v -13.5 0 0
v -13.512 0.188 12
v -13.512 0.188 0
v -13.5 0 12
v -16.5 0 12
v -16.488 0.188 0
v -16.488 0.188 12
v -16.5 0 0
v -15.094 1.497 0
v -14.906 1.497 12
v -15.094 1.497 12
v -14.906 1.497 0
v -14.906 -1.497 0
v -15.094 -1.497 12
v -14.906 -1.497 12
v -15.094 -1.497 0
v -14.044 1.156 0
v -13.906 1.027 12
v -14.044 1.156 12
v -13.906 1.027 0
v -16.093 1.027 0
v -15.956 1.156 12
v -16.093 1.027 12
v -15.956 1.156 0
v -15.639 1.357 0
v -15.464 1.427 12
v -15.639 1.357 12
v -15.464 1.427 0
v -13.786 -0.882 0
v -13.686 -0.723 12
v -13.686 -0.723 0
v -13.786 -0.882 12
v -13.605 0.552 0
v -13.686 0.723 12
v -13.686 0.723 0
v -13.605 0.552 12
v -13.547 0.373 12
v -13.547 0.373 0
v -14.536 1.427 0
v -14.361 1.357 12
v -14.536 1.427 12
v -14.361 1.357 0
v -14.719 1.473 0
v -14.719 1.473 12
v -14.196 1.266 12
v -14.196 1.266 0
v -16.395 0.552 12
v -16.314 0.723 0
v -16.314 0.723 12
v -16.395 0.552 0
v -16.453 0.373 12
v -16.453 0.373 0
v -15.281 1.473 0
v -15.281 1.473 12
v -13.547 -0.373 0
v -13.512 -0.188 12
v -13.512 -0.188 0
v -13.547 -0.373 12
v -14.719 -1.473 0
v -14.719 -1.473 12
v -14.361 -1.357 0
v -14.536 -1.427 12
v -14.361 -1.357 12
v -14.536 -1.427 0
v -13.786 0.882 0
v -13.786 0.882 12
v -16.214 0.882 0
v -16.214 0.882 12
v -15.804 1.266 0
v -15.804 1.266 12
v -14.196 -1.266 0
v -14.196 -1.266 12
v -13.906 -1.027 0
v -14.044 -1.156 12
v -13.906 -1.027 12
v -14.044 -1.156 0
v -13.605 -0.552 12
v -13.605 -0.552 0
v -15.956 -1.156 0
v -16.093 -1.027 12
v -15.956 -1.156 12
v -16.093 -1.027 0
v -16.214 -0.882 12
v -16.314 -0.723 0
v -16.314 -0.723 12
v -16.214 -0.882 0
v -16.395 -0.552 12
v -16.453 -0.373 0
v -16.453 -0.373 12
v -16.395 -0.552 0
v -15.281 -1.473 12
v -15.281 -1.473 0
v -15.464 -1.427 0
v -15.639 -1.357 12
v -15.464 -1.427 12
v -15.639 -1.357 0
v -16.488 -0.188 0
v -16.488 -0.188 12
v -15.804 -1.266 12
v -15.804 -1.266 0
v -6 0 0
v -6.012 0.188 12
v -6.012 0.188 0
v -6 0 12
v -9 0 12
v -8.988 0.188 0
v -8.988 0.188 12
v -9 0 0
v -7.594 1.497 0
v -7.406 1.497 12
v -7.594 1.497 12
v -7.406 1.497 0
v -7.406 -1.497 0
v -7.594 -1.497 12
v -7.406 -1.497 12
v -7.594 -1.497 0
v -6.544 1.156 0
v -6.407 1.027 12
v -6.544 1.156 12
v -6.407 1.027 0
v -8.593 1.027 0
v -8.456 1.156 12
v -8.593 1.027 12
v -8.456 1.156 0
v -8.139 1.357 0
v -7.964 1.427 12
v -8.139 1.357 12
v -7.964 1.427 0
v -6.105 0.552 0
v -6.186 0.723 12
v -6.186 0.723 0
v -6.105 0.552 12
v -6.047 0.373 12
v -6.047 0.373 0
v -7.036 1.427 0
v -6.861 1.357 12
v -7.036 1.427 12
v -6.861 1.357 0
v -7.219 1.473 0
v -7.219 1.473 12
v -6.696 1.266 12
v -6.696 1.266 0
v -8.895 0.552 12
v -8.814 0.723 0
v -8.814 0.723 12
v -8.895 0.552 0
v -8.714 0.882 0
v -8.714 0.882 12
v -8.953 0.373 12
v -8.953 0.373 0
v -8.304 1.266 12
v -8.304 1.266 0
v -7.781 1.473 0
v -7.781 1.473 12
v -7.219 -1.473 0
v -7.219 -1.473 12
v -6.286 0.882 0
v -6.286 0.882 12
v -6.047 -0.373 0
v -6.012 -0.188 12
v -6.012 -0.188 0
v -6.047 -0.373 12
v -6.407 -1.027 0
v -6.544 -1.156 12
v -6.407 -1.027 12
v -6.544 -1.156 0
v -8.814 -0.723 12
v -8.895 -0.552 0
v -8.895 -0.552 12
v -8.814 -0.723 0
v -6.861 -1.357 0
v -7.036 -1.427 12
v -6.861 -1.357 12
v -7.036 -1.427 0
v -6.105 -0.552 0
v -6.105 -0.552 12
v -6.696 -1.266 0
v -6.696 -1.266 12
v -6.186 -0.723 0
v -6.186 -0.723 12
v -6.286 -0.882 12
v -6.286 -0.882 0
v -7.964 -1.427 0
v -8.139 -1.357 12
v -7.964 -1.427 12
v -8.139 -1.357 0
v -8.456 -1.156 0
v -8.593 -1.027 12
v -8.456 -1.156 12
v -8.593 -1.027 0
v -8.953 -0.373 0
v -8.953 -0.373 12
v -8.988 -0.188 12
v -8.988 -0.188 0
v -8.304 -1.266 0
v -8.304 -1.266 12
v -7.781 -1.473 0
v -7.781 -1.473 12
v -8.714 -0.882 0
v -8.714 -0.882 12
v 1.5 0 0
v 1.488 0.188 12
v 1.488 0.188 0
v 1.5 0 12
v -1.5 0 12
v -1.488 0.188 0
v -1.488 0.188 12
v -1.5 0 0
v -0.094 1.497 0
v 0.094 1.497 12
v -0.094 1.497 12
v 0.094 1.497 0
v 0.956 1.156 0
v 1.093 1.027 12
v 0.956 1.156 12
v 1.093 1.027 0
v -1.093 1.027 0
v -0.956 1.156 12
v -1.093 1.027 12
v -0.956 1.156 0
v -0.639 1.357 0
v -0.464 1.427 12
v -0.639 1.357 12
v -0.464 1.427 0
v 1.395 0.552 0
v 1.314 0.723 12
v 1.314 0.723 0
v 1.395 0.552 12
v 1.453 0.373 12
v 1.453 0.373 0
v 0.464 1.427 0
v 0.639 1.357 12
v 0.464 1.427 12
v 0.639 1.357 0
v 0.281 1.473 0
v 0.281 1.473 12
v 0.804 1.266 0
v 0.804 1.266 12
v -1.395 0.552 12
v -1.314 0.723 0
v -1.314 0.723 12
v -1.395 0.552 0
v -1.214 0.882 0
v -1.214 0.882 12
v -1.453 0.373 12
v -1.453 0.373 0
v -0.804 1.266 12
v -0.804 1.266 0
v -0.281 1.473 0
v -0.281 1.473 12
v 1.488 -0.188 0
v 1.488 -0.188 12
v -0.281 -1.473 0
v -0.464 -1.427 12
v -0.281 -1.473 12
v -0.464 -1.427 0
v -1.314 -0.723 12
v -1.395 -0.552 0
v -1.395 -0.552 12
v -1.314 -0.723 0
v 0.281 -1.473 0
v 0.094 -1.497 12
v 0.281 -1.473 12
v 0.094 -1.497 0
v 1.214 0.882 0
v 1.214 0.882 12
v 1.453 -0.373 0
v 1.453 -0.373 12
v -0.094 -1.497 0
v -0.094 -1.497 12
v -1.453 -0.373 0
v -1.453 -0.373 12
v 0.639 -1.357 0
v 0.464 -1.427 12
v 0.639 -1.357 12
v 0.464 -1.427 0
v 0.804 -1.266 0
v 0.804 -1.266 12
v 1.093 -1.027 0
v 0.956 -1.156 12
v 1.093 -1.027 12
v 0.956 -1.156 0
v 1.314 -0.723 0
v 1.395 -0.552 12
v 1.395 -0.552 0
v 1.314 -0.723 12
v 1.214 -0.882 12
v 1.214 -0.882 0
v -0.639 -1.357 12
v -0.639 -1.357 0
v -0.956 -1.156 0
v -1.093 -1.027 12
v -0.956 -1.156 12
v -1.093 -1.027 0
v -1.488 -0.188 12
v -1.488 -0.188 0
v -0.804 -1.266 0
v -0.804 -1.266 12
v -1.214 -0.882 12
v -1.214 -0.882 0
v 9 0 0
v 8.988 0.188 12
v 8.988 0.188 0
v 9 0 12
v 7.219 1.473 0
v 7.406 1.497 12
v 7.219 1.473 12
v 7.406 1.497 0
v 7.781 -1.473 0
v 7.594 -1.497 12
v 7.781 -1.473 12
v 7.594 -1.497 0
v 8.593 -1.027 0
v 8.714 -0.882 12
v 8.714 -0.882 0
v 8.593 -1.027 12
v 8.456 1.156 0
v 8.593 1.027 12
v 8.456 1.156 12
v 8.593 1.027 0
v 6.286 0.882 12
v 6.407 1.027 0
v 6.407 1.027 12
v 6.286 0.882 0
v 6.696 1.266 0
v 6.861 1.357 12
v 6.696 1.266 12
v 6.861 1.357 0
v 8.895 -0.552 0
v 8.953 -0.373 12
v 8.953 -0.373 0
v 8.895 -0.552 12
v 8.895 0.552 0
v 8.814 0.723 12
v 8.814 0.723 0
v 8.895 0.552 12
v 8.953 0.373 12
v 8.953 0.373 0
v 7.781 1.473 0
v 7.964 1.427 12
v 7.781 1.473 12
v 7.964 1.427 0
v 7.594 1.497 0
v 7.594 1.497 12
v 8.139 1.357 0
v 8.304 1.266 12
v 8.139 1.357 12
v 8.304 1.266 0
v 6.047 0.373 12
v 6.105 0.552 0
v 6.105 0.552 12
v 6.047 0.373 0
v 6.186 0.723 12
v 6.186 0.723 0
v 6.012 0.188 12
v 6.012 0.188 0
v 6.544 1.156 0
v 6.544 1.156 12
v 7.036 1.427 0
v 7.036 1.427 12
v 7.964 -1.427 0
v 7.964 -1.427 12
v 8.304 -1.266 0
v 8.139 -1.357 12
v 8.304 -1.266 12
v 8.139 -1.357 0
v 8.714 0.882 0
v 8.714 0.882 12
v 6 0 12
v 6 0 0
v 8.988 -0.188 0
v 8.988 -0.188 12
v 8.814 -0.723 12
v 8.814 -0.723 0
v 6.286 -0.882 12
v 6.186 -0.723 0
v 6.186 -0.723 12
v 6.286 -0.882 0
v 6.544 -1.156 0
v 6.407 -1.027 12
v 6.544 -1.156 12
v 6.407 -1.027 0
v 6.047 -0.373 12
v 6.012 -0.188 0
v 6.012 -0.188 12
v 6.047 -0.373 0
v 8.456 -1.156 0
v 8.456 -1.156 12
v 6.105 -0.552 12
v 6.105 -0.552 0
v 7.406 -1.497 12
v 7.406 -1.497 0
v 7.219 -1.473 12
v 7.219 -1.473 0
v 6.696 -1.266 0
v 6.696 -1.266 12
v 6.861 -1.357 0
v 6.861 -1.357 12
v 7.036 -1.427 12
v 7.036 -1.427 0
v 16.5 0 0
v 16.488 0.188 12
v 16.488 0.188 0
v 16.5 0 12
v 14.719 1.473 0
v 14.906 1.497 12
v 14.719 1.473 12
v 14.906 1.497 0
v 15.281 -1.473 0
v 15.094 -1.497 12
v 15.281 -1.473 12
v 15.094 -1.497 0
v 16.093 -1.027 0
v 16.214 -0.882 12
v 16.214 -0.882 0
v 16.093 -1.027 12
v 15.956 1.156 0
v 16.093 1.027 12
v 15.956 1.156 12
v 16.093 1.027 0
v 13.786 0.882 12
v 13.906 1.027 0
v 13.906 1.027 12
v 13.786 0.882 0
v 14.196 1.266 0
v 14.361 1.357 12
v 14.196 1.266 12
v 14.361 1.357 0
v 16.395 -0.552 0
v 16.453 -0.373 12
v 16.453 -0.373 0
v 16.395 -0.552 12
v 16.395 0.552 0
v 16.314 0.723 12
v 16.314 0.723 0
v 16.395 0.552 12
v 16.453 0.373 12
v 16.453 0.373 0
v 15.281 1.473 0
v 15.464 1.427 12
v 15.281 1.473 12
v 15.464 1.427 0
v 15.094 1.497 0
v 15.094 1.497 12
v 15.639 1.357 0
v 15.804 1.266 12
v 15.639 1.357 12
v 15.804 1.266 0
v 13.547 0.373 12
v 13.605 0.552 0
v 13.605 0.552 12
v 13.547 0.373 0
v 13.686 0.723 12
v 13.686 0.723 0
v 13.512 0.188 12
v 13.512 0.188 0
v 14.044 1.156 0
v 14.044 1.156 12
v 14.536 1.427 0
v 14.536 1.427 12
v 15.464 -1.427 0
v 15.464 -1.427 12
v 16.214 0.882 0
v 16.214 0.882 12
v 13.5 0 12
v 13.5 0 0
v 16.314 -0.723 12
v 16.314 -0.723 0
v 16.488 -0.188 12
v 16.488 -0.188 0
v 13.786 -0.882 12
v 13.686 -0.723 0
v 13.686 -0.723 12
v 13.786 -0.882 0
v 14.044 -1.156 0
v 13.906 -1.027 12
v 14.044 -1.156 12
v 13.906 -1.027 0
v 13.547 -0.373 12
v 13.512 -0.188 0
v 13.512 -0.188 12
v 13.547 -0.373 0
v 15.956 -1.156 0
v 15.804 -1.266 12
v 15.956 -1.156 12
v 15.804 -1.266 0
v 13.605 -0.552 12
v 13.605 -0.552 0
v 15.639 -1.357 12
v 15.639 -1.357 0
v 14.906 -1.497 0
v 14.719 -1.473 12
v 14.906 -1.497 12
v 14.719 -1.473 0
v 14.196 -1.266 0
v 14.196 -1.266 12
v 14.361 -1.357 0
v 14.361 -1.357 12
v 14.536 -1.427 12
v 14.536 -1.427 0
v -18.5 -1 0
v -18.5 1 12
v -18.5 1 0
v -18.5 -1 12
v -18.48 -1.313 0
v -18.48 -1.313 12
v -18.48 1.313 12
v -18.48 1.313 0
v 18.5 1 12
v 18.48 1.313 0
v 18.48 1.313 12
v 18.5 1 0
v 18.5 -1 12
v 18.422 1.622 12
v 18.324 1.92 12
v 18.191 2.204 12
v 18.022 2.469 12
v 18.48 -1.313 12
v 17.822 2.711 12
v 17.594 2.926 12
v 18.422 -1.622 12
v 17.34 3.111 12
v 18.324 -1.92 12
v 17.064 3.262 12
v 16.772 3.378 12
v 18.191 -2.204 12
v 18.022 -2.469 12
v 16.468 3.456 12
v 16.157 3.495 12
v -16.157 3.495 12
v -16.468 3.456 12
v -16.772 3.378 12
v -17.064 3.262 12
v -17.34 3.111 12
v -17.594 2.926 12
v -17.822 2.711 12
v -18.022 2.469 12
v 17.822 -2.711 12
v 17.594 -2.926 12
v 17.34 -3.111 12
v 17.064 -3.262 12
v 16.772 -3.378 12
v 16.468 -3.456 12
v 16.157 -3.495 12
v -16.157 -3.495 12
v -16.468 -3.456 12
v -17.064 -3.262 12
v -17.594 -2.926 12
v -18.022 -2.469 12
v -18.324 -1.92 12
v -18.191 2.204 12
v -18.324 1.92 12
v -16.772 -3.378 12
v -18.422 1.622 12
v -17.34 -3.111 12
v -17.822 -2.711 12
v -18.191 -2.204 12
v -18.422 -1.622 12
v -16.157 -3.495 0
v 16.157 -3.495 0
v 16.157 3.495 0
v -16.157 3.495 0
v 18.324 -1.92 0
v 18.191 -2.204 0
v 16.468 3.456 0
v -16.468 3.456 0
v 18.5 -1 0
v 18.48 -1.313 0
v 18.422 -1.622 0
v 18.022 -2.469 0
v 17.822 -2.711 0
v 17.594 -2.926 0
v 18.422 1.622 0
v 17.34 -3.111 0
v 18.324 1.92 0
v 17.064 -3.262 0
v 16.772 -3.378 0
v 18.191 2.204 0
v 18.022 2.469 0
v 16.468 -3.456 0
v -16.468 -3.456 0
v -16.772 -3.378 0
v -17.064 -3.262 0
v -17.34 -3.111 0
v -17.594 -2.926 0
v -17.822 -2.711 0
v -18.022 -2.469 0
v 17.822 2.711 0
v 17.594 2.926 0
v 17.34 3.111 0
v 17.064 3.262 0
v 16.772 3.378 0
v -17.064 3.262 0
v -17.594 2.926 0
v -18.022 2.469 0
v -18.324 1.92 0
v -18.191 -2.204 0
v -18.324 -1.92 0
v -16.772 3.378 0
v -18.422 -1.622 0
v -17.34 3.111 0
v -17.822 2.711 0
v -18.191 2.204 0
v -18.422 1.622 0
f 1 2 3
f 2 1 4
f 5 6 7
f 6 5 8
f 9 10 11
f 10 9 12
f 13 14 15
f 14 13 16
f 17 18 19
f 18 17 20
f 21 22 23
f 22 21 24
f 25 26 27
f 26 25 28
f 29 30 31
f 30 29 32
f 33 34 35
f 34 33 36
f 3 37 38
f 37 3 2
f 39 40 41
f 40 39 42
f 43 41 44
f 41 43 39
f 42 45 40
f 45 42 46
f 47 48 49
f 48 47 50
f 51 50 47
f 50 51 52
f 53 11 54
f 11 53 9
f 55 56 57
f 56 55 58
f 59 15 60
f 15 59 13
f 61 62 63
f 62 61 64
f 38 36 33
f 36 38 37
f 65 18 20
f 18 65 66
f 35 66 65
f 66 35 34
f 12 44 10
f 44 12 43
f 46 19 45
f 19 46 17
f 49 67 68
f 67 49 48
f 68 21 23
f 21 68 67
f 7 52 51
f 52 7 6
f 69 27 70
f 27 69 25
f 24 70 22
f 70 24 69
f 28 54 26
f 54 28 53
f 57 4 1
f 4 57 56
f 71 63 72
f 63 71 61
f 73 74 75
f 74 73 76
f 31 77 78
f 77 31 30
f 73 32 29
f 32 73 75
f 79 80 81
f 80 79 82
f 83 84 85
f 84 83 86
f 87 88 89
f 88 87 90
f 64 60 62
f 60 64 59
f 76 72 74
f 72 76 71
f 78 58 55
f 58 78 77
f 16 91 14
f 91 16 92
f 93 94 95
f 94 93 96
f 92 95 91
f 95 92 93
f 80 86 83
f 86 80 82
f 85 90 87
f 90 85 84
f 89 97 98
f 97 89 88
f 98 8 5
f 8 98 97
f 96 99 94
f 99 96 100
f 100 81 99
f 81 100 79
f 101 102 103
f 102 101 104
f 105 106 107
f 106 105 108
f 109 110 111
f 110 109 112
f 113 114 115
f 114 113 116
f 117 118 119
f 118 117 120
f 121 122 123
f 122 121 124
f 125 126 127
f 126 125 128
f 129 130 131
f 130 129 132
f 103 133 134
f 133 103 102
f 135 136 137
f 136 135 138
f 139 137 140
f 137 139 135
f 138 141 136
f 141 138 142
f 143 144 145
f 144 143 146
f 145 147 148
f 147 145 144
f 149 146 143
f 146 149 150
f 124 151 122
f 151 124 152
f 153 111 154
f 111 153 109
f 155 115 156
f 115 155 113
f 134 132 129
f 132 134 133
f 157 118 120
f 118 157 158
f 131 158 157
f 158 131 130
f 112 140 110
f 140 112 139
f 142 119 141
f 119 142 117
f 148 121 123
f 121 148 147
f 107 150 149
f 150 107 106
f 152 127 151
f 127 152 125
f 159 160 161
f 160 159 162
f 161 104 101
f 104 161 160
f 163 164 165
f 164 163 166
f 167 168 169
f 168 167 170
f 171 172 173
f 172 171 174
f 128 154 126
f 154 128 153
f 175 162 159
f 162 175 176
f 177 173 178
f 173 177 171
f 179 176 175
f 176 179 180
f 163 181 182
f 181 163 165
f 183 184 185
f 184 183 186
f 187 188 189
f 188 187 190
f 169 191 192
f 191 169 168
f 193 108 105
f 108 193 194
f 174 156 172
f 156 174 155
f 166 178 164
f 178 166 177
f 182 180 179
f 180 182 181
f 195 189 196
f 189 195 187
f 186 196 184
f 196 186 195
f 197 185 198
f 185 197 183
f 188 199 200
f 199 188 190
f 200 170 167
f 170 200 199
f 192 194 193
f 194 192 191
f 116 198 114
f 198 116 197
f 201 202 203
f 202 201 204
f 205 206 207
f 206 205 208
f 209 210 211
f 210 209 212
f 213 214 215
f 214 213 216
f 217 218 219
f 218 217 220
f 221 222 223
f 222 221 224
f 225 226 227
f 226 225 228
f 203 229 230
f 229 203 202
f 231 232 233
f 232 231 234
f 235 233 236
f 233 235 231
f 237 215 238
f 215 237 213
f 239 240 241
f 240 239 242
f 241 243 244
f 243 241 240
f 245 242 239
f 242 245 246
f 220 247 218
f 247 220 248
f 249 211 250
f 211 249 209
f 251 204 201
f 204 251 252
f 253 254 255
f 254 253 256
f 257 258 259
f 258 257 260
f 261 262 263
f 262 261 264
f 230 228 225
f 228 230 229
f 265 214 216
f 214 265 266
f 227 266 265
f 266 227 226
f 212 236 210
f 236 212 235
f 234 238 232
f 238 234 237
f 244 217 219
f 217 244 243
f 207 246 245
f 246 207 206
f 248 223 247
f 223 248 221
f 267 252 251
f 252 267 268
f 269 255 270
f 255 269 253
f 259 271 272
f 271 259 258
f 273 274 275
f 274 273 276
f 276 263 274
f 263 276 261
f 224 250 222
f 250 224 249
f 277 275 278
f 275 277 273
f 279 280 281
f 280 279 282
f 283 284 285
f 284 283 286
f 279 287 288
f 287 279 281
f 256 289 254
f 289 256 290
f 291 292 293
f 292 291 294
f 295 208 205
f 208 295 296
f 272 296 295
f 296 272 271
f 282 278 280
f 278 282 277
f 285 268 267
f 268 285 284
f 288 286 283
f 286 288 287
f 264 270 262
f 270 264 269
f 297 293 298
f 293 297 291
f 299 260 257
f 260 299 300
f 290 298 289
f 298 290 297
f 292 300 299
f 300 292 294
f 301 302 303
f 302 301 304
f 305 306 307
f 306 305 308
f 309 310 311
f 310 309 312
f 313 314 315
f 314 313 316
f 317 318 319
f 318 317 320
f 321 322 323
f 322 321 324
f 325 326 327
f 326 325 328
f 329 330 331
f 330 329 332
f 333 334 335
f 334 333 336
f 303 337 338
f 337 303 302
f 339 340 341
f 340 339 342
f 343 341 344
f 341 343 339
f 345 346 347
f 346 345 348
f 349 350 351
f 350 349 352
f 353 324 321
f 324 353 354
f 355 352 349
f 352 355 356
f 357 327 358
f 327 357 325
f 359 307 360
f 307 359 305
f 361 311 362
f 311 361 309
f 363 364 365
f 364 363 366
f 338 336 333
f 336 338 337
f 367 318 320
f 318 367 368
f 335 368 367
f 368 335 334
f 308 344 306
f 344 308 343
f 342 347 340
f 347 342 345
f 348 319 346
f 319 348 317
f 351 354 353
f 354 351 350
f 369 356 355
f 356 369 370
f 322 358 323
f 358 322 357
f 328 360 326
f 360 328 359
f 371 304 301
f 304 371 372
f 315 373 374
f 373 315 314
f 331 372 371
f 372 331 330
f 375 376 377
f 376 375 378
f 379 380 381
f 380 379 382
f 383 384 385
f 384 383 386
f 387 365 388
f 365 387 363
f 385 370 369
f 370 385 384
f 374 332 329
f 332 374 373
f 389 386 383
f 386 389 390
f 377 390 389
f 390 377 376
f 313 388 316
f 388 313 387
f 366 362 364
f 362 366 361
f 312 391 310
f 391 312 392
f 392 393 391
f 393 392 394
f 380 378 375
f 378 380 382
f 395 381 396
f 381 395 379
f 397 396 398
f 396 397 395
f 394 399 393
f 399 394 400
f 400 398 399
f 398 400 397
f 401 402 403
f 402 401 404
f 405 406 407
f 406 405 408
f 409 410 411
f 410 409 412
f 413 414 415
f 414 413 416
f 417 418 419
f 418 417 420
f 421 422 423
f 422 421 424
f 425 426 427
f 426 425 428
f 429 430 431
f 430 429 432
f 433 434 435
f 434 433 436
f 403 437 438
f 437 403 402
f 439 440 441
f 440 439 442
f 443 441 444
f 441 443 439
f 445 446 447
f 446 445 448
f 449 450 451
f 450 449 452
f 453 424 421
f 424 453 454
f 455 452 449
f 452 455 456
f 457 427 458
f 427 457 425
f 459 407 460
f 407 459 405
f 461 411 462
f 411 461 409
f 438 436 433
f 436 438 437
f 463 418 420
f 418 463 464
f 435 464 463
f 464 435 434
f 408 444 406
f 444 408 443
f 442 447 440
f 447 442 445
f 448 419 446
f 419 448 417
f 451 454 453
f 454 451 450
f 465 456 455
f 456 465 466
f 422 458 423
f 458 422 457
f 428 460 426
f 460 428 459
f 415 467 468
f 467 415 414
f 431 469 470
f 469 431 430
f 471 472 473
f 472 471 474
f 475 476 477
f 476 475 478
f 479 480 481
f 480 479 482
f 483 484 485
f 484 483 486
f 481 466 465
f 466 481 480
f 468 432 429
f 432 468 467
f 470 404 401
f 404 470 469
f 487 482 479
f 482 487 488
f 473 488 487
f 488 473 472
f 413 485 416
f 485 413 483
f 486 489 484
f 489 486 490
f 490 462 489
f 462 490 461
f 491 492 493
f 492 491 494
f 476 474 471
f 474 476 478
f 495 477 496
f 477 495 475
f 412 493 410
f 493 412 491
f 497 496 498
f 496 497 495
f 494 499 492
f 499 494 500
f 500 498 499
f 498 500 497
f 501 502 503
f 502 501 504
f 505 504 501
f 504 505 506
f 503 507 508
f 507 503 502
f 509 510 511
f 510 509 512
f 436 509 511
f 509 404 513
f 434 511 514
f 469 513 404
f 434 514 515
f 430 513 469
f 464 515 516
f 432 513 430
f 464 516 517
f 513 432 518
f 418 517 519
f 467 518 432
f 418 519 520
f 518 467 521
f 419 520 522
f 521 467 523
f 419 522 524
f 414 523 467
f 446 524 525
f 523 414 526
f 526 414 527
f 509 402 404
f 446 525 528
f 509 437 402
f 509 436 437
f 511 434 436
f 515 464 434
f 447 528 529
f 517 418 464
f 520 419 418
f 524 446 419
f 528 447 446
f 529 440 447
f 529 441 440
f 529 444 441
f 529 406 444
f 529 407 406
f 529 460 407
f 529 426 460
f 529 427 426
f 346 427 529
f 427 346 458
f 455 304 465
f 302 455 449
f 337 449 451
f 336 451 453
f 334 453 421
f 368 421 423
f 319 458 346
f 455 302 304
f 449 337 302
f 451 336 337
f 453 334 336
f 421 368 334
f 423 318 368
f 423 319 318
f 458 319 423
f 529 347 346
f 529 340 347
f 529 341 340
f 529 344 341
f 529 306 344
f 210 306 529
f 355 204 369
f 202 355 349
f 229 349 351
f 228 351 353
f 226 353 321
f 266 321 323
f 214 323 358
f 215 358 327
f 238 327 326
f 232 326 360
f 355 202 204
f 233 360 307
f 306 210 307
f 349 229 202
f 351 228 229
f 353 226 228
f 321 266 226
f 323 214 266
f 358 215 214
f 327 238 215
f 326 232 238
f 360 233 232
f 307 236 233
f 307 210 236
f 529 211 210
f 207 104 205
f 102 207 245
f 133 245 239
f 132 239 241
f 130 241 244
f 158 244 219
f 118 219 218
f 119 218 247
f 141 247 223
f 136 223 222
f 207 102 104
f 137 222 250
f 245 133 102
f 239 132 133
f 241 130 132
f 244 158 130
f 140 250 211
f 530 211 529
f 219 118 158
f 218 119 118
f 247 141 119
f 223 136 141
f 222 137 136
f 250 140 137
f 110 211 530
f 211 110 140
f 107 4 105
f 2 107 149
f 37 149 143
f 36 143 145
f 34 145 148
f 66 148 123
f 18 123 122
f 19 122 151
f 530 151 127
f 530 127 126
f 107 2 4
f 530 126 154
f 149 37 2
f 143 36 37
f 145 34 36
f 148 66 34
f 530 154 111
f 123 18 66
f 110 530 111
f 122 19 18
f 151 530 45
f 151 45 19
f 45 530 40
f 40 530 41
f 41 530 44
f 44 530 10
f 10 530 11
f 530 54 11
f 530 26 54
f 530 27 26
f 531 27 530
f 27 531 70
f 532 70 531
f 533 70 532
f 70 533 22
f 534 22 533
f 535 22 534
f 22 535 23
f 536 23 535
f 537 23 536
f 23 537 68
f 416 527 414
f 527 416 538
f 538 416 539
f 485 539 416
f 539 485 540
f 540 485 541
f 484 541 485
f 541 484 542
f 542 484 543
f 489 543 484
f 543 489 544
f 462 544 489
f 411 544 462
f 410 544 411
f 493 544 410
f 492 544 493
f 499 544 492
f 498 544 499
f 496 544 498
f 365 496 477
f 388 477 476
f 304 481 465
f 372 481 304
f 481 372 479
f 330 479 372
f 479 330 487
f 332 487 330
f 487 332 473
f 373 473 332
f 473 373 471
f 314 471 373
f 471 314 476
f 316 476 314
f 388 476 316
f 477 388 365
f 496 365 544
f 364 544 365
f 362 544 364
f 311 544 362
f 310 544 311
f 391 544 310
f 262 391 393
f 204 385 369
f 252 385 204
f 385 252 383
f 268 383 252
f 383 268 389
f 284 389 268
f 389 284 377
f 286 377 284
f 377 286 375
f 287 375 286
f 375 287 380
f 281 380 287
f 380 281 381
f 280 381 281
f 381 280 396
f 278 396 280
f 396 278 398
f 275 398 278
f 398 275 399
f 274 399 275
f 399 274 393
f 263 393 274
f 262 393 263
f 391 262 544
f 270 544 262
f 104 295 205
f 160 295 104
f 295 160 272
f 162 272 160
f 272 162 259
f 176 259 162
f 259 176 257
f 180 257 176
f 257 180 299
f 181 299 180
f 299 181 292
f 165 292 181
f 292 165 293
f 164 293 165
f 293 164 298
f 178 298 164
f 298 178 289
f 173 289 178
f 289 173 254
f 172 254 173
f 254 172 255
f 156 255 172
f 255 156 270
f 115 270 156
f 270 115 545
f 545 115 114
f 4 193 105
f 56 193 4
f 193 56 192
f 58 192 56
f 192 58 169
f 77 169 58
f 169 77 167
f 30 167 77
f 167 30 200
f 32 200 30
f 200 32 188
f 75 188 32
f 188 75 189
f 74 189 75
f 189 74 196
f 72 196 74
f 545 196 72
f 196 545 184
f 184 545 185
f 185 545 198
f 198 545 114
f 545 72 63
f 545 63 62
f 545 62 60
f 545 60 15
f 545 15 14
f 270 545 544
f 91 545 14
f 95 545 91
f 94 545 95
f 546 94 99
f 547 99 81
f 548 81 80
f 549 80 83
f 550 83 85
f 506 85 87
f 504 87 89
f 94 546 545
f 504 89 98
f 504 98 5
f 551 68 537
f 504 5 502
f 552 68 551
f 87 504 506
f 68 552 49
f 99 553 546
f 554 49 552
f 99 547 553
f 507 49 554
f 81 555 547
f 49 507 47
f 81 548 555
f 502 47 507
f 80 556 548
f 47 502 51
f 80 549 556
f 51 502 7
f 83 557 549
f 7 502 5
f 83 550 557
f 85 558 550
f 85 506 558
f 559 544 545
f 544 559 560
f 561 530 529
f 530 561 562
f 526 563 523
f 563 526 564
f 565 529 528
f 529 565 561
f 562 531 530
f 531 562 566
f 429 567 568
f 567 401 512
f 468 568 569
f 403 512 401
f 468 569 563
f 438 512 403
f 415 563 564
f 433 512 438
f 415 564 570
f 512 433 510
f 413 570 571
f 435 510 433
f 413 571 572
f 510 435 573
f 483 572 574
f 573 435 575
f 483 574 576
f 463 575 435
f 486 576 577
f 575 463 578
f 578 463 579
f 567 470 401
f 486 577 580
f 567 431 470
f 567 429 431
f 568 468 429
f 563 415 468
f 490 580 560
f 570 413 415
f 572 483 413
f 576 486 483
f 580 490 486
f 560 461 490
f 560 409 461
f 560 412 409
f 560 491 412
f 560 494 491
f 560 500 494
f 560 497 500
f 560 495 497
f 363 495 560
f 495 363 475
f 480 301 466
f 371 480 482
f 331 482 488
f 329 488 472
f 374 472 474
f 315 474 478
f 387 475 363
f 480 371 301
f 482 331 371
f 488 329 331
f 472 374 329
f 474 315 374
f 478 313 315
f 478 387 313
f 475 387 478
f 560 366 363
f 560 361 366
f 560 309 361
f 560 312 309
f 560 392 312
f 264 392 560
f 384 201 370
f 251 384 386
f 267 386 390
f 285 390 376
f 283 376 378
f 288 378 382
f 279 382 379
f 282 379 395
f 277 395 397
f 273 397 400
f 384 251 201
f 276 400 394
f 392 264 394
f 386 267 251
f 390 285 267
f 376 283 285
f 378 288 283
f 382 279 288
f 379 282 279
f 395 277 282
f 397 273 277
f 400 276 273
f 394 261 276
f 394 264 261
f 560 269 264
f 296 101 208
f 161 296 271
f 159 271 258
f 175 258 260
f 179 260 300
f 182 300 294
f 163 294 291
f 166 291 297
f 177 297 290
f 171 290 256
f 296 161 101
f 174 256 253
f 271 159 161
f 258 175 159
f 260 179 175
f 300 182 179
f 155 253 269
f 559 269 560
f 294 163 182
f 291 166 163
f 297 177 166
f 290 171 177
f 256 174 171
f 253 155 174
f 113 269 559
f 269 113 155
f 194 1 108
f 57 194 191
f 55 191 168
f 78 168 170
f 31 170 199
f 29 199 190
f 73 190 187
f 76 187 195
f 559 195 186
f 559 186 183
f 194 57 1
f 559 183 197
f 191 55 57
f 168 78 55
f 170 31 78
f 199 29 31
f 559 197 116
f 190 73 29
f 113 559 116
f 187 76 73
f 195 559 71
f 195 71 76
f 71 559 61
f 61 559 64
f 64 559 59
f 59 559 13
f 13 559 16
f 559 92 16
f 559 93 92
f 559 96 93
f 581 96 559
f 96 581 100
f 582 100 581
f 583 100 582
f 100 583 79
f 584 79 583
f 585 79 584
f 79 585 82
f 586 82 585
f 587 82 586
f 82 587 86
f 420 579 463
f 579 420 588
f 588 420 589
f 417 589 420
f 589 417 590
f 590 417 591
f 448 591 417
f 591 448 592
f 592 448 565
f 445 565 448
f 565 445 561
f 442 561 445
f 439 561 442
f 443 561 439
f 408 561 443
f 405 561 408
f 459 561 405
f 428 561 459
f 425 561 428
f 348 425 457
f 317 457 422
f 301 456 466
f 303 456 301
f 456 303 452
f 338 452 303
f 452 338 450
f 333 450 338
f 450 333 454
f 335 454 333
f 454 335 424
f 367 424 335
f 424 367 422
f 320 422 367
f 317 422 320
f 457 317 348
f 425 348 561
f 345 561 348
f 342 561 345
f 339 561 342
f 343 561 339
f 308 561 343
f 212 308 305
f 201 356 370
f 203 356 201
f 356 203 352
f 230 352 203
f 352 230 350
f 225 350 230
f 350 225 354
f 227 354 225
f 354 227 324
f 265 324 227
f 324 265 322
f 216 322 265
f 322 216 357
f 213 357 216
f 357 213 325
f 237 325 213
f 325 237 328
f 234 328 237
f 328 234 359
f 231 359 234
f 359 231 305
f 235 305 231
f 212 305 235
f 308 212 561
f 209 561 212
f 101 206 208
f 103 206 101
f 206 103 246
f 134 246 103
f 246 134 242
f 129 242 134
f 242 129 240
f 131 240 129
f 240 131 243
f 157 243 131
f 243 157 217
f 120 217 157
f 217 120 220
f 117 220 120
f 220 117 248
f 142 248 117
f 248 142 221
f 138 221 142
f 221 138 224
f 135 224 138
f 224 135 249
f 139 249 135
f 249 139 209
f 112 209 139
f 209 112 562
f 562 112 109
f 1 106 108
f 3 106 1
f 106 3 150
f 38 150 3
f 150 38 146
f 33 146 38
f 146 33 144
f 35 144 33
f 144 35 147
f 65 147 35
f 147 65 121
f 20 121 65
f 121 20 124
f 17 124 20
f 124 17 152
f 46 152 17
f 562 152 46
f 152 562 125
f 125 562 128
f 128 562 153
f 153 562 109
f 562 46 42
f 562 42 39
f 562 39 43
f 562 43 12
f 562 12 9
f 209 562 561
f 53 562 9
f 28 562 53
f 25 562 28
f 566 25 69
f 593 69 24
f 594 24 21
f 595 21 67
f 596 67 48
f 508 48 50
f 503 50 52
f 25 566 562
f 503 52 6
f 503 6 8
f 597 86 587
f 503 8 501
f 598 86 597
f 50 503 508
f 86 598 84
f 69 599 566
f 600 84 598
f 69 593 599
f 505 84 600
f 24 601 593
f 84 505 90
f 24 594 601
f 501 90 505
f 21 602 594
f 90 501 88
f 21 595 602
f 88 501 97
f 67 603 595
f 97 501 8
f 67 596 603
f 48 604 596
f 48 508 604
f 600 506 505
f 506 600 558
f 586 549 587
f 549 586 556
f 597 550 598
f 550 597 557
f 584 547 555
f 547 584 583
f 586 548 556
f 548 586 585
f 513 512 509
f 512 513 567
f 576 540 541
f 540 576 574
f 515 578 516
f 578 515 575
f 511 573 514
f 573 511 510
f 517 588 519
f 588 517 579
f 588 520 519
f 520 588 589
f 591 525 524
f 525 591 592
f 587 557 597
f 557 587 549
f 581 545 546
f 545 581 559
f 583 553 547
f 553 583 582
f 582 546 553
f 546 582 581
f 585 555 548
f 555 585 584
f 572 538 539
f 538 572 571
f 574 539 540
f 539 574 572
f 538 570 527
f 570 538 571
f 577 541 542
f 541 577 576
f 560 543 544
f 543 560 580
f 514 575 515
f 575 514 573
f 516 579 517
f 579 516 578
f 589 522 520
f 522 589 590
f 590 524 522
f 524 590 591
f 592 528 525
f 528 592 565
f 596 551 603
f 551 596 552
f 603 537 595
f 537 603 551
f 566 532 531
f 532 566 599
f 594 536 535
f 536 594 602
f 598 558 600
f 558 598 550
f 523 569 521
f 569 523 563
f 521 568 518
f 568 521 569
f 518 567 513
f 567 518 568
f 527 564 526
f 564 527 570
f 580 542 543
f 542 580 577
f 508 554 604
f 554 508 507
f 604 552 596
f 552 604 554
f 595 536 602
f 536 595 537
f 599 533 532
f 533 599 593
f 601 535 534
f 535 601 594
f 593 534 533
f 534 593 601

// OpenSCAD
$fn = 50;


difference() {
	union() {
		translate(v = [0, 0, 0]) {
			rotate(a = [0, 0, 0]) {
				hull() {
					translate(v = [-16.0000000000, 1.0000000000, 0]) {
						rotate(a = [0, 0, 0]) {
							translate(v = [0, 0, 0]) {
								rotate(a = [0, 0, 0]) {
									cylinder(h = 12, r = 2.5000000000);
								}
							}
						}
					}
					translate(v = [16.0000000000, 1.0000000000, 0]) {
						rotate(a = [0, 0, 0]) {
							translate(v = [0, 0, 0]) {
								rotate(a = [0, 0, 0]) {
									cylinder(h = 12, r = 2.5000000000);
								}
							}
						}
					}
					translate(v = [-16.0000000000, -1.0000000000, 0]) {
						rotate(a = [0, 0, 0]) {
							translate(v = [0, 0, 0]) {
								rotate(a = [0, 0, 0]) {
									cylinder(h = 12, r = 2.5000000000);
								}
							}
						}
					}
					translate(v = [16.0000000000, -1.0000000000, 0]) {
						rotate(a = [0, 0, 0]) {
							translate(v = [0, 0, 0]) {
								rotate(a = [0, 0, 0]) {
									cylinder(h = 12, r = 2.5000000000);
								}
							}
						}
					}
				}
			}
		}
	}
	union() {
		translate(v = [-15.0000000000, 0.0000000000, 0]) {
			rotate(a = [0, 0, 0]) {
				translate(v = [0, 0, -50]) {
					rotate(a = [0, 0, 0]) {
						cylinder(h = 100, r = 1.5000000000);
					}
				}
			}
		}
		translate(v = [-7.5000000000, 0.0000000000, 0]) {
			rotate(a = [0, 0, 0]) {
				translate(v = [0, 0, -50]) {
					rotate(a = [0, 0, 0]) {
						cylinder(h = 100, r = 1.5000000000);
					}
				}
			}
		}
		translate(v = [0.0000000000, 0.0000000000, 0]) {
			rotate(a = [0, 0, 0]) {
				translate(v = [0, 0, -50]) {
					rotate(a = [0, 0, 0]) {
						cylinder(h = 100, r = 1.5000000000);
					}
				}
			}
		}
		translate(v = [7.5000000000, 0.0000000000, 0]) {
			rotate(a = [0, 0, 0]) {
				translate(v = [0, 0, -50]) {
					rotate(a = [0, 0, 0]) {
						cylinder(h = 100, r = 1.5000000000);
					}
				}
			}
		}
		translate(v = [15.0000000000, 0.0000000000, 0]) {
			rotate(a = [0, 0, 0]) {
				translate(v = [0, 0, -50]) {
					rotate(a = [0, 0, 0]) {
						cylinder(h = 100, r = 1.5000000000);
					}
				}
			}
		}
	}
}
